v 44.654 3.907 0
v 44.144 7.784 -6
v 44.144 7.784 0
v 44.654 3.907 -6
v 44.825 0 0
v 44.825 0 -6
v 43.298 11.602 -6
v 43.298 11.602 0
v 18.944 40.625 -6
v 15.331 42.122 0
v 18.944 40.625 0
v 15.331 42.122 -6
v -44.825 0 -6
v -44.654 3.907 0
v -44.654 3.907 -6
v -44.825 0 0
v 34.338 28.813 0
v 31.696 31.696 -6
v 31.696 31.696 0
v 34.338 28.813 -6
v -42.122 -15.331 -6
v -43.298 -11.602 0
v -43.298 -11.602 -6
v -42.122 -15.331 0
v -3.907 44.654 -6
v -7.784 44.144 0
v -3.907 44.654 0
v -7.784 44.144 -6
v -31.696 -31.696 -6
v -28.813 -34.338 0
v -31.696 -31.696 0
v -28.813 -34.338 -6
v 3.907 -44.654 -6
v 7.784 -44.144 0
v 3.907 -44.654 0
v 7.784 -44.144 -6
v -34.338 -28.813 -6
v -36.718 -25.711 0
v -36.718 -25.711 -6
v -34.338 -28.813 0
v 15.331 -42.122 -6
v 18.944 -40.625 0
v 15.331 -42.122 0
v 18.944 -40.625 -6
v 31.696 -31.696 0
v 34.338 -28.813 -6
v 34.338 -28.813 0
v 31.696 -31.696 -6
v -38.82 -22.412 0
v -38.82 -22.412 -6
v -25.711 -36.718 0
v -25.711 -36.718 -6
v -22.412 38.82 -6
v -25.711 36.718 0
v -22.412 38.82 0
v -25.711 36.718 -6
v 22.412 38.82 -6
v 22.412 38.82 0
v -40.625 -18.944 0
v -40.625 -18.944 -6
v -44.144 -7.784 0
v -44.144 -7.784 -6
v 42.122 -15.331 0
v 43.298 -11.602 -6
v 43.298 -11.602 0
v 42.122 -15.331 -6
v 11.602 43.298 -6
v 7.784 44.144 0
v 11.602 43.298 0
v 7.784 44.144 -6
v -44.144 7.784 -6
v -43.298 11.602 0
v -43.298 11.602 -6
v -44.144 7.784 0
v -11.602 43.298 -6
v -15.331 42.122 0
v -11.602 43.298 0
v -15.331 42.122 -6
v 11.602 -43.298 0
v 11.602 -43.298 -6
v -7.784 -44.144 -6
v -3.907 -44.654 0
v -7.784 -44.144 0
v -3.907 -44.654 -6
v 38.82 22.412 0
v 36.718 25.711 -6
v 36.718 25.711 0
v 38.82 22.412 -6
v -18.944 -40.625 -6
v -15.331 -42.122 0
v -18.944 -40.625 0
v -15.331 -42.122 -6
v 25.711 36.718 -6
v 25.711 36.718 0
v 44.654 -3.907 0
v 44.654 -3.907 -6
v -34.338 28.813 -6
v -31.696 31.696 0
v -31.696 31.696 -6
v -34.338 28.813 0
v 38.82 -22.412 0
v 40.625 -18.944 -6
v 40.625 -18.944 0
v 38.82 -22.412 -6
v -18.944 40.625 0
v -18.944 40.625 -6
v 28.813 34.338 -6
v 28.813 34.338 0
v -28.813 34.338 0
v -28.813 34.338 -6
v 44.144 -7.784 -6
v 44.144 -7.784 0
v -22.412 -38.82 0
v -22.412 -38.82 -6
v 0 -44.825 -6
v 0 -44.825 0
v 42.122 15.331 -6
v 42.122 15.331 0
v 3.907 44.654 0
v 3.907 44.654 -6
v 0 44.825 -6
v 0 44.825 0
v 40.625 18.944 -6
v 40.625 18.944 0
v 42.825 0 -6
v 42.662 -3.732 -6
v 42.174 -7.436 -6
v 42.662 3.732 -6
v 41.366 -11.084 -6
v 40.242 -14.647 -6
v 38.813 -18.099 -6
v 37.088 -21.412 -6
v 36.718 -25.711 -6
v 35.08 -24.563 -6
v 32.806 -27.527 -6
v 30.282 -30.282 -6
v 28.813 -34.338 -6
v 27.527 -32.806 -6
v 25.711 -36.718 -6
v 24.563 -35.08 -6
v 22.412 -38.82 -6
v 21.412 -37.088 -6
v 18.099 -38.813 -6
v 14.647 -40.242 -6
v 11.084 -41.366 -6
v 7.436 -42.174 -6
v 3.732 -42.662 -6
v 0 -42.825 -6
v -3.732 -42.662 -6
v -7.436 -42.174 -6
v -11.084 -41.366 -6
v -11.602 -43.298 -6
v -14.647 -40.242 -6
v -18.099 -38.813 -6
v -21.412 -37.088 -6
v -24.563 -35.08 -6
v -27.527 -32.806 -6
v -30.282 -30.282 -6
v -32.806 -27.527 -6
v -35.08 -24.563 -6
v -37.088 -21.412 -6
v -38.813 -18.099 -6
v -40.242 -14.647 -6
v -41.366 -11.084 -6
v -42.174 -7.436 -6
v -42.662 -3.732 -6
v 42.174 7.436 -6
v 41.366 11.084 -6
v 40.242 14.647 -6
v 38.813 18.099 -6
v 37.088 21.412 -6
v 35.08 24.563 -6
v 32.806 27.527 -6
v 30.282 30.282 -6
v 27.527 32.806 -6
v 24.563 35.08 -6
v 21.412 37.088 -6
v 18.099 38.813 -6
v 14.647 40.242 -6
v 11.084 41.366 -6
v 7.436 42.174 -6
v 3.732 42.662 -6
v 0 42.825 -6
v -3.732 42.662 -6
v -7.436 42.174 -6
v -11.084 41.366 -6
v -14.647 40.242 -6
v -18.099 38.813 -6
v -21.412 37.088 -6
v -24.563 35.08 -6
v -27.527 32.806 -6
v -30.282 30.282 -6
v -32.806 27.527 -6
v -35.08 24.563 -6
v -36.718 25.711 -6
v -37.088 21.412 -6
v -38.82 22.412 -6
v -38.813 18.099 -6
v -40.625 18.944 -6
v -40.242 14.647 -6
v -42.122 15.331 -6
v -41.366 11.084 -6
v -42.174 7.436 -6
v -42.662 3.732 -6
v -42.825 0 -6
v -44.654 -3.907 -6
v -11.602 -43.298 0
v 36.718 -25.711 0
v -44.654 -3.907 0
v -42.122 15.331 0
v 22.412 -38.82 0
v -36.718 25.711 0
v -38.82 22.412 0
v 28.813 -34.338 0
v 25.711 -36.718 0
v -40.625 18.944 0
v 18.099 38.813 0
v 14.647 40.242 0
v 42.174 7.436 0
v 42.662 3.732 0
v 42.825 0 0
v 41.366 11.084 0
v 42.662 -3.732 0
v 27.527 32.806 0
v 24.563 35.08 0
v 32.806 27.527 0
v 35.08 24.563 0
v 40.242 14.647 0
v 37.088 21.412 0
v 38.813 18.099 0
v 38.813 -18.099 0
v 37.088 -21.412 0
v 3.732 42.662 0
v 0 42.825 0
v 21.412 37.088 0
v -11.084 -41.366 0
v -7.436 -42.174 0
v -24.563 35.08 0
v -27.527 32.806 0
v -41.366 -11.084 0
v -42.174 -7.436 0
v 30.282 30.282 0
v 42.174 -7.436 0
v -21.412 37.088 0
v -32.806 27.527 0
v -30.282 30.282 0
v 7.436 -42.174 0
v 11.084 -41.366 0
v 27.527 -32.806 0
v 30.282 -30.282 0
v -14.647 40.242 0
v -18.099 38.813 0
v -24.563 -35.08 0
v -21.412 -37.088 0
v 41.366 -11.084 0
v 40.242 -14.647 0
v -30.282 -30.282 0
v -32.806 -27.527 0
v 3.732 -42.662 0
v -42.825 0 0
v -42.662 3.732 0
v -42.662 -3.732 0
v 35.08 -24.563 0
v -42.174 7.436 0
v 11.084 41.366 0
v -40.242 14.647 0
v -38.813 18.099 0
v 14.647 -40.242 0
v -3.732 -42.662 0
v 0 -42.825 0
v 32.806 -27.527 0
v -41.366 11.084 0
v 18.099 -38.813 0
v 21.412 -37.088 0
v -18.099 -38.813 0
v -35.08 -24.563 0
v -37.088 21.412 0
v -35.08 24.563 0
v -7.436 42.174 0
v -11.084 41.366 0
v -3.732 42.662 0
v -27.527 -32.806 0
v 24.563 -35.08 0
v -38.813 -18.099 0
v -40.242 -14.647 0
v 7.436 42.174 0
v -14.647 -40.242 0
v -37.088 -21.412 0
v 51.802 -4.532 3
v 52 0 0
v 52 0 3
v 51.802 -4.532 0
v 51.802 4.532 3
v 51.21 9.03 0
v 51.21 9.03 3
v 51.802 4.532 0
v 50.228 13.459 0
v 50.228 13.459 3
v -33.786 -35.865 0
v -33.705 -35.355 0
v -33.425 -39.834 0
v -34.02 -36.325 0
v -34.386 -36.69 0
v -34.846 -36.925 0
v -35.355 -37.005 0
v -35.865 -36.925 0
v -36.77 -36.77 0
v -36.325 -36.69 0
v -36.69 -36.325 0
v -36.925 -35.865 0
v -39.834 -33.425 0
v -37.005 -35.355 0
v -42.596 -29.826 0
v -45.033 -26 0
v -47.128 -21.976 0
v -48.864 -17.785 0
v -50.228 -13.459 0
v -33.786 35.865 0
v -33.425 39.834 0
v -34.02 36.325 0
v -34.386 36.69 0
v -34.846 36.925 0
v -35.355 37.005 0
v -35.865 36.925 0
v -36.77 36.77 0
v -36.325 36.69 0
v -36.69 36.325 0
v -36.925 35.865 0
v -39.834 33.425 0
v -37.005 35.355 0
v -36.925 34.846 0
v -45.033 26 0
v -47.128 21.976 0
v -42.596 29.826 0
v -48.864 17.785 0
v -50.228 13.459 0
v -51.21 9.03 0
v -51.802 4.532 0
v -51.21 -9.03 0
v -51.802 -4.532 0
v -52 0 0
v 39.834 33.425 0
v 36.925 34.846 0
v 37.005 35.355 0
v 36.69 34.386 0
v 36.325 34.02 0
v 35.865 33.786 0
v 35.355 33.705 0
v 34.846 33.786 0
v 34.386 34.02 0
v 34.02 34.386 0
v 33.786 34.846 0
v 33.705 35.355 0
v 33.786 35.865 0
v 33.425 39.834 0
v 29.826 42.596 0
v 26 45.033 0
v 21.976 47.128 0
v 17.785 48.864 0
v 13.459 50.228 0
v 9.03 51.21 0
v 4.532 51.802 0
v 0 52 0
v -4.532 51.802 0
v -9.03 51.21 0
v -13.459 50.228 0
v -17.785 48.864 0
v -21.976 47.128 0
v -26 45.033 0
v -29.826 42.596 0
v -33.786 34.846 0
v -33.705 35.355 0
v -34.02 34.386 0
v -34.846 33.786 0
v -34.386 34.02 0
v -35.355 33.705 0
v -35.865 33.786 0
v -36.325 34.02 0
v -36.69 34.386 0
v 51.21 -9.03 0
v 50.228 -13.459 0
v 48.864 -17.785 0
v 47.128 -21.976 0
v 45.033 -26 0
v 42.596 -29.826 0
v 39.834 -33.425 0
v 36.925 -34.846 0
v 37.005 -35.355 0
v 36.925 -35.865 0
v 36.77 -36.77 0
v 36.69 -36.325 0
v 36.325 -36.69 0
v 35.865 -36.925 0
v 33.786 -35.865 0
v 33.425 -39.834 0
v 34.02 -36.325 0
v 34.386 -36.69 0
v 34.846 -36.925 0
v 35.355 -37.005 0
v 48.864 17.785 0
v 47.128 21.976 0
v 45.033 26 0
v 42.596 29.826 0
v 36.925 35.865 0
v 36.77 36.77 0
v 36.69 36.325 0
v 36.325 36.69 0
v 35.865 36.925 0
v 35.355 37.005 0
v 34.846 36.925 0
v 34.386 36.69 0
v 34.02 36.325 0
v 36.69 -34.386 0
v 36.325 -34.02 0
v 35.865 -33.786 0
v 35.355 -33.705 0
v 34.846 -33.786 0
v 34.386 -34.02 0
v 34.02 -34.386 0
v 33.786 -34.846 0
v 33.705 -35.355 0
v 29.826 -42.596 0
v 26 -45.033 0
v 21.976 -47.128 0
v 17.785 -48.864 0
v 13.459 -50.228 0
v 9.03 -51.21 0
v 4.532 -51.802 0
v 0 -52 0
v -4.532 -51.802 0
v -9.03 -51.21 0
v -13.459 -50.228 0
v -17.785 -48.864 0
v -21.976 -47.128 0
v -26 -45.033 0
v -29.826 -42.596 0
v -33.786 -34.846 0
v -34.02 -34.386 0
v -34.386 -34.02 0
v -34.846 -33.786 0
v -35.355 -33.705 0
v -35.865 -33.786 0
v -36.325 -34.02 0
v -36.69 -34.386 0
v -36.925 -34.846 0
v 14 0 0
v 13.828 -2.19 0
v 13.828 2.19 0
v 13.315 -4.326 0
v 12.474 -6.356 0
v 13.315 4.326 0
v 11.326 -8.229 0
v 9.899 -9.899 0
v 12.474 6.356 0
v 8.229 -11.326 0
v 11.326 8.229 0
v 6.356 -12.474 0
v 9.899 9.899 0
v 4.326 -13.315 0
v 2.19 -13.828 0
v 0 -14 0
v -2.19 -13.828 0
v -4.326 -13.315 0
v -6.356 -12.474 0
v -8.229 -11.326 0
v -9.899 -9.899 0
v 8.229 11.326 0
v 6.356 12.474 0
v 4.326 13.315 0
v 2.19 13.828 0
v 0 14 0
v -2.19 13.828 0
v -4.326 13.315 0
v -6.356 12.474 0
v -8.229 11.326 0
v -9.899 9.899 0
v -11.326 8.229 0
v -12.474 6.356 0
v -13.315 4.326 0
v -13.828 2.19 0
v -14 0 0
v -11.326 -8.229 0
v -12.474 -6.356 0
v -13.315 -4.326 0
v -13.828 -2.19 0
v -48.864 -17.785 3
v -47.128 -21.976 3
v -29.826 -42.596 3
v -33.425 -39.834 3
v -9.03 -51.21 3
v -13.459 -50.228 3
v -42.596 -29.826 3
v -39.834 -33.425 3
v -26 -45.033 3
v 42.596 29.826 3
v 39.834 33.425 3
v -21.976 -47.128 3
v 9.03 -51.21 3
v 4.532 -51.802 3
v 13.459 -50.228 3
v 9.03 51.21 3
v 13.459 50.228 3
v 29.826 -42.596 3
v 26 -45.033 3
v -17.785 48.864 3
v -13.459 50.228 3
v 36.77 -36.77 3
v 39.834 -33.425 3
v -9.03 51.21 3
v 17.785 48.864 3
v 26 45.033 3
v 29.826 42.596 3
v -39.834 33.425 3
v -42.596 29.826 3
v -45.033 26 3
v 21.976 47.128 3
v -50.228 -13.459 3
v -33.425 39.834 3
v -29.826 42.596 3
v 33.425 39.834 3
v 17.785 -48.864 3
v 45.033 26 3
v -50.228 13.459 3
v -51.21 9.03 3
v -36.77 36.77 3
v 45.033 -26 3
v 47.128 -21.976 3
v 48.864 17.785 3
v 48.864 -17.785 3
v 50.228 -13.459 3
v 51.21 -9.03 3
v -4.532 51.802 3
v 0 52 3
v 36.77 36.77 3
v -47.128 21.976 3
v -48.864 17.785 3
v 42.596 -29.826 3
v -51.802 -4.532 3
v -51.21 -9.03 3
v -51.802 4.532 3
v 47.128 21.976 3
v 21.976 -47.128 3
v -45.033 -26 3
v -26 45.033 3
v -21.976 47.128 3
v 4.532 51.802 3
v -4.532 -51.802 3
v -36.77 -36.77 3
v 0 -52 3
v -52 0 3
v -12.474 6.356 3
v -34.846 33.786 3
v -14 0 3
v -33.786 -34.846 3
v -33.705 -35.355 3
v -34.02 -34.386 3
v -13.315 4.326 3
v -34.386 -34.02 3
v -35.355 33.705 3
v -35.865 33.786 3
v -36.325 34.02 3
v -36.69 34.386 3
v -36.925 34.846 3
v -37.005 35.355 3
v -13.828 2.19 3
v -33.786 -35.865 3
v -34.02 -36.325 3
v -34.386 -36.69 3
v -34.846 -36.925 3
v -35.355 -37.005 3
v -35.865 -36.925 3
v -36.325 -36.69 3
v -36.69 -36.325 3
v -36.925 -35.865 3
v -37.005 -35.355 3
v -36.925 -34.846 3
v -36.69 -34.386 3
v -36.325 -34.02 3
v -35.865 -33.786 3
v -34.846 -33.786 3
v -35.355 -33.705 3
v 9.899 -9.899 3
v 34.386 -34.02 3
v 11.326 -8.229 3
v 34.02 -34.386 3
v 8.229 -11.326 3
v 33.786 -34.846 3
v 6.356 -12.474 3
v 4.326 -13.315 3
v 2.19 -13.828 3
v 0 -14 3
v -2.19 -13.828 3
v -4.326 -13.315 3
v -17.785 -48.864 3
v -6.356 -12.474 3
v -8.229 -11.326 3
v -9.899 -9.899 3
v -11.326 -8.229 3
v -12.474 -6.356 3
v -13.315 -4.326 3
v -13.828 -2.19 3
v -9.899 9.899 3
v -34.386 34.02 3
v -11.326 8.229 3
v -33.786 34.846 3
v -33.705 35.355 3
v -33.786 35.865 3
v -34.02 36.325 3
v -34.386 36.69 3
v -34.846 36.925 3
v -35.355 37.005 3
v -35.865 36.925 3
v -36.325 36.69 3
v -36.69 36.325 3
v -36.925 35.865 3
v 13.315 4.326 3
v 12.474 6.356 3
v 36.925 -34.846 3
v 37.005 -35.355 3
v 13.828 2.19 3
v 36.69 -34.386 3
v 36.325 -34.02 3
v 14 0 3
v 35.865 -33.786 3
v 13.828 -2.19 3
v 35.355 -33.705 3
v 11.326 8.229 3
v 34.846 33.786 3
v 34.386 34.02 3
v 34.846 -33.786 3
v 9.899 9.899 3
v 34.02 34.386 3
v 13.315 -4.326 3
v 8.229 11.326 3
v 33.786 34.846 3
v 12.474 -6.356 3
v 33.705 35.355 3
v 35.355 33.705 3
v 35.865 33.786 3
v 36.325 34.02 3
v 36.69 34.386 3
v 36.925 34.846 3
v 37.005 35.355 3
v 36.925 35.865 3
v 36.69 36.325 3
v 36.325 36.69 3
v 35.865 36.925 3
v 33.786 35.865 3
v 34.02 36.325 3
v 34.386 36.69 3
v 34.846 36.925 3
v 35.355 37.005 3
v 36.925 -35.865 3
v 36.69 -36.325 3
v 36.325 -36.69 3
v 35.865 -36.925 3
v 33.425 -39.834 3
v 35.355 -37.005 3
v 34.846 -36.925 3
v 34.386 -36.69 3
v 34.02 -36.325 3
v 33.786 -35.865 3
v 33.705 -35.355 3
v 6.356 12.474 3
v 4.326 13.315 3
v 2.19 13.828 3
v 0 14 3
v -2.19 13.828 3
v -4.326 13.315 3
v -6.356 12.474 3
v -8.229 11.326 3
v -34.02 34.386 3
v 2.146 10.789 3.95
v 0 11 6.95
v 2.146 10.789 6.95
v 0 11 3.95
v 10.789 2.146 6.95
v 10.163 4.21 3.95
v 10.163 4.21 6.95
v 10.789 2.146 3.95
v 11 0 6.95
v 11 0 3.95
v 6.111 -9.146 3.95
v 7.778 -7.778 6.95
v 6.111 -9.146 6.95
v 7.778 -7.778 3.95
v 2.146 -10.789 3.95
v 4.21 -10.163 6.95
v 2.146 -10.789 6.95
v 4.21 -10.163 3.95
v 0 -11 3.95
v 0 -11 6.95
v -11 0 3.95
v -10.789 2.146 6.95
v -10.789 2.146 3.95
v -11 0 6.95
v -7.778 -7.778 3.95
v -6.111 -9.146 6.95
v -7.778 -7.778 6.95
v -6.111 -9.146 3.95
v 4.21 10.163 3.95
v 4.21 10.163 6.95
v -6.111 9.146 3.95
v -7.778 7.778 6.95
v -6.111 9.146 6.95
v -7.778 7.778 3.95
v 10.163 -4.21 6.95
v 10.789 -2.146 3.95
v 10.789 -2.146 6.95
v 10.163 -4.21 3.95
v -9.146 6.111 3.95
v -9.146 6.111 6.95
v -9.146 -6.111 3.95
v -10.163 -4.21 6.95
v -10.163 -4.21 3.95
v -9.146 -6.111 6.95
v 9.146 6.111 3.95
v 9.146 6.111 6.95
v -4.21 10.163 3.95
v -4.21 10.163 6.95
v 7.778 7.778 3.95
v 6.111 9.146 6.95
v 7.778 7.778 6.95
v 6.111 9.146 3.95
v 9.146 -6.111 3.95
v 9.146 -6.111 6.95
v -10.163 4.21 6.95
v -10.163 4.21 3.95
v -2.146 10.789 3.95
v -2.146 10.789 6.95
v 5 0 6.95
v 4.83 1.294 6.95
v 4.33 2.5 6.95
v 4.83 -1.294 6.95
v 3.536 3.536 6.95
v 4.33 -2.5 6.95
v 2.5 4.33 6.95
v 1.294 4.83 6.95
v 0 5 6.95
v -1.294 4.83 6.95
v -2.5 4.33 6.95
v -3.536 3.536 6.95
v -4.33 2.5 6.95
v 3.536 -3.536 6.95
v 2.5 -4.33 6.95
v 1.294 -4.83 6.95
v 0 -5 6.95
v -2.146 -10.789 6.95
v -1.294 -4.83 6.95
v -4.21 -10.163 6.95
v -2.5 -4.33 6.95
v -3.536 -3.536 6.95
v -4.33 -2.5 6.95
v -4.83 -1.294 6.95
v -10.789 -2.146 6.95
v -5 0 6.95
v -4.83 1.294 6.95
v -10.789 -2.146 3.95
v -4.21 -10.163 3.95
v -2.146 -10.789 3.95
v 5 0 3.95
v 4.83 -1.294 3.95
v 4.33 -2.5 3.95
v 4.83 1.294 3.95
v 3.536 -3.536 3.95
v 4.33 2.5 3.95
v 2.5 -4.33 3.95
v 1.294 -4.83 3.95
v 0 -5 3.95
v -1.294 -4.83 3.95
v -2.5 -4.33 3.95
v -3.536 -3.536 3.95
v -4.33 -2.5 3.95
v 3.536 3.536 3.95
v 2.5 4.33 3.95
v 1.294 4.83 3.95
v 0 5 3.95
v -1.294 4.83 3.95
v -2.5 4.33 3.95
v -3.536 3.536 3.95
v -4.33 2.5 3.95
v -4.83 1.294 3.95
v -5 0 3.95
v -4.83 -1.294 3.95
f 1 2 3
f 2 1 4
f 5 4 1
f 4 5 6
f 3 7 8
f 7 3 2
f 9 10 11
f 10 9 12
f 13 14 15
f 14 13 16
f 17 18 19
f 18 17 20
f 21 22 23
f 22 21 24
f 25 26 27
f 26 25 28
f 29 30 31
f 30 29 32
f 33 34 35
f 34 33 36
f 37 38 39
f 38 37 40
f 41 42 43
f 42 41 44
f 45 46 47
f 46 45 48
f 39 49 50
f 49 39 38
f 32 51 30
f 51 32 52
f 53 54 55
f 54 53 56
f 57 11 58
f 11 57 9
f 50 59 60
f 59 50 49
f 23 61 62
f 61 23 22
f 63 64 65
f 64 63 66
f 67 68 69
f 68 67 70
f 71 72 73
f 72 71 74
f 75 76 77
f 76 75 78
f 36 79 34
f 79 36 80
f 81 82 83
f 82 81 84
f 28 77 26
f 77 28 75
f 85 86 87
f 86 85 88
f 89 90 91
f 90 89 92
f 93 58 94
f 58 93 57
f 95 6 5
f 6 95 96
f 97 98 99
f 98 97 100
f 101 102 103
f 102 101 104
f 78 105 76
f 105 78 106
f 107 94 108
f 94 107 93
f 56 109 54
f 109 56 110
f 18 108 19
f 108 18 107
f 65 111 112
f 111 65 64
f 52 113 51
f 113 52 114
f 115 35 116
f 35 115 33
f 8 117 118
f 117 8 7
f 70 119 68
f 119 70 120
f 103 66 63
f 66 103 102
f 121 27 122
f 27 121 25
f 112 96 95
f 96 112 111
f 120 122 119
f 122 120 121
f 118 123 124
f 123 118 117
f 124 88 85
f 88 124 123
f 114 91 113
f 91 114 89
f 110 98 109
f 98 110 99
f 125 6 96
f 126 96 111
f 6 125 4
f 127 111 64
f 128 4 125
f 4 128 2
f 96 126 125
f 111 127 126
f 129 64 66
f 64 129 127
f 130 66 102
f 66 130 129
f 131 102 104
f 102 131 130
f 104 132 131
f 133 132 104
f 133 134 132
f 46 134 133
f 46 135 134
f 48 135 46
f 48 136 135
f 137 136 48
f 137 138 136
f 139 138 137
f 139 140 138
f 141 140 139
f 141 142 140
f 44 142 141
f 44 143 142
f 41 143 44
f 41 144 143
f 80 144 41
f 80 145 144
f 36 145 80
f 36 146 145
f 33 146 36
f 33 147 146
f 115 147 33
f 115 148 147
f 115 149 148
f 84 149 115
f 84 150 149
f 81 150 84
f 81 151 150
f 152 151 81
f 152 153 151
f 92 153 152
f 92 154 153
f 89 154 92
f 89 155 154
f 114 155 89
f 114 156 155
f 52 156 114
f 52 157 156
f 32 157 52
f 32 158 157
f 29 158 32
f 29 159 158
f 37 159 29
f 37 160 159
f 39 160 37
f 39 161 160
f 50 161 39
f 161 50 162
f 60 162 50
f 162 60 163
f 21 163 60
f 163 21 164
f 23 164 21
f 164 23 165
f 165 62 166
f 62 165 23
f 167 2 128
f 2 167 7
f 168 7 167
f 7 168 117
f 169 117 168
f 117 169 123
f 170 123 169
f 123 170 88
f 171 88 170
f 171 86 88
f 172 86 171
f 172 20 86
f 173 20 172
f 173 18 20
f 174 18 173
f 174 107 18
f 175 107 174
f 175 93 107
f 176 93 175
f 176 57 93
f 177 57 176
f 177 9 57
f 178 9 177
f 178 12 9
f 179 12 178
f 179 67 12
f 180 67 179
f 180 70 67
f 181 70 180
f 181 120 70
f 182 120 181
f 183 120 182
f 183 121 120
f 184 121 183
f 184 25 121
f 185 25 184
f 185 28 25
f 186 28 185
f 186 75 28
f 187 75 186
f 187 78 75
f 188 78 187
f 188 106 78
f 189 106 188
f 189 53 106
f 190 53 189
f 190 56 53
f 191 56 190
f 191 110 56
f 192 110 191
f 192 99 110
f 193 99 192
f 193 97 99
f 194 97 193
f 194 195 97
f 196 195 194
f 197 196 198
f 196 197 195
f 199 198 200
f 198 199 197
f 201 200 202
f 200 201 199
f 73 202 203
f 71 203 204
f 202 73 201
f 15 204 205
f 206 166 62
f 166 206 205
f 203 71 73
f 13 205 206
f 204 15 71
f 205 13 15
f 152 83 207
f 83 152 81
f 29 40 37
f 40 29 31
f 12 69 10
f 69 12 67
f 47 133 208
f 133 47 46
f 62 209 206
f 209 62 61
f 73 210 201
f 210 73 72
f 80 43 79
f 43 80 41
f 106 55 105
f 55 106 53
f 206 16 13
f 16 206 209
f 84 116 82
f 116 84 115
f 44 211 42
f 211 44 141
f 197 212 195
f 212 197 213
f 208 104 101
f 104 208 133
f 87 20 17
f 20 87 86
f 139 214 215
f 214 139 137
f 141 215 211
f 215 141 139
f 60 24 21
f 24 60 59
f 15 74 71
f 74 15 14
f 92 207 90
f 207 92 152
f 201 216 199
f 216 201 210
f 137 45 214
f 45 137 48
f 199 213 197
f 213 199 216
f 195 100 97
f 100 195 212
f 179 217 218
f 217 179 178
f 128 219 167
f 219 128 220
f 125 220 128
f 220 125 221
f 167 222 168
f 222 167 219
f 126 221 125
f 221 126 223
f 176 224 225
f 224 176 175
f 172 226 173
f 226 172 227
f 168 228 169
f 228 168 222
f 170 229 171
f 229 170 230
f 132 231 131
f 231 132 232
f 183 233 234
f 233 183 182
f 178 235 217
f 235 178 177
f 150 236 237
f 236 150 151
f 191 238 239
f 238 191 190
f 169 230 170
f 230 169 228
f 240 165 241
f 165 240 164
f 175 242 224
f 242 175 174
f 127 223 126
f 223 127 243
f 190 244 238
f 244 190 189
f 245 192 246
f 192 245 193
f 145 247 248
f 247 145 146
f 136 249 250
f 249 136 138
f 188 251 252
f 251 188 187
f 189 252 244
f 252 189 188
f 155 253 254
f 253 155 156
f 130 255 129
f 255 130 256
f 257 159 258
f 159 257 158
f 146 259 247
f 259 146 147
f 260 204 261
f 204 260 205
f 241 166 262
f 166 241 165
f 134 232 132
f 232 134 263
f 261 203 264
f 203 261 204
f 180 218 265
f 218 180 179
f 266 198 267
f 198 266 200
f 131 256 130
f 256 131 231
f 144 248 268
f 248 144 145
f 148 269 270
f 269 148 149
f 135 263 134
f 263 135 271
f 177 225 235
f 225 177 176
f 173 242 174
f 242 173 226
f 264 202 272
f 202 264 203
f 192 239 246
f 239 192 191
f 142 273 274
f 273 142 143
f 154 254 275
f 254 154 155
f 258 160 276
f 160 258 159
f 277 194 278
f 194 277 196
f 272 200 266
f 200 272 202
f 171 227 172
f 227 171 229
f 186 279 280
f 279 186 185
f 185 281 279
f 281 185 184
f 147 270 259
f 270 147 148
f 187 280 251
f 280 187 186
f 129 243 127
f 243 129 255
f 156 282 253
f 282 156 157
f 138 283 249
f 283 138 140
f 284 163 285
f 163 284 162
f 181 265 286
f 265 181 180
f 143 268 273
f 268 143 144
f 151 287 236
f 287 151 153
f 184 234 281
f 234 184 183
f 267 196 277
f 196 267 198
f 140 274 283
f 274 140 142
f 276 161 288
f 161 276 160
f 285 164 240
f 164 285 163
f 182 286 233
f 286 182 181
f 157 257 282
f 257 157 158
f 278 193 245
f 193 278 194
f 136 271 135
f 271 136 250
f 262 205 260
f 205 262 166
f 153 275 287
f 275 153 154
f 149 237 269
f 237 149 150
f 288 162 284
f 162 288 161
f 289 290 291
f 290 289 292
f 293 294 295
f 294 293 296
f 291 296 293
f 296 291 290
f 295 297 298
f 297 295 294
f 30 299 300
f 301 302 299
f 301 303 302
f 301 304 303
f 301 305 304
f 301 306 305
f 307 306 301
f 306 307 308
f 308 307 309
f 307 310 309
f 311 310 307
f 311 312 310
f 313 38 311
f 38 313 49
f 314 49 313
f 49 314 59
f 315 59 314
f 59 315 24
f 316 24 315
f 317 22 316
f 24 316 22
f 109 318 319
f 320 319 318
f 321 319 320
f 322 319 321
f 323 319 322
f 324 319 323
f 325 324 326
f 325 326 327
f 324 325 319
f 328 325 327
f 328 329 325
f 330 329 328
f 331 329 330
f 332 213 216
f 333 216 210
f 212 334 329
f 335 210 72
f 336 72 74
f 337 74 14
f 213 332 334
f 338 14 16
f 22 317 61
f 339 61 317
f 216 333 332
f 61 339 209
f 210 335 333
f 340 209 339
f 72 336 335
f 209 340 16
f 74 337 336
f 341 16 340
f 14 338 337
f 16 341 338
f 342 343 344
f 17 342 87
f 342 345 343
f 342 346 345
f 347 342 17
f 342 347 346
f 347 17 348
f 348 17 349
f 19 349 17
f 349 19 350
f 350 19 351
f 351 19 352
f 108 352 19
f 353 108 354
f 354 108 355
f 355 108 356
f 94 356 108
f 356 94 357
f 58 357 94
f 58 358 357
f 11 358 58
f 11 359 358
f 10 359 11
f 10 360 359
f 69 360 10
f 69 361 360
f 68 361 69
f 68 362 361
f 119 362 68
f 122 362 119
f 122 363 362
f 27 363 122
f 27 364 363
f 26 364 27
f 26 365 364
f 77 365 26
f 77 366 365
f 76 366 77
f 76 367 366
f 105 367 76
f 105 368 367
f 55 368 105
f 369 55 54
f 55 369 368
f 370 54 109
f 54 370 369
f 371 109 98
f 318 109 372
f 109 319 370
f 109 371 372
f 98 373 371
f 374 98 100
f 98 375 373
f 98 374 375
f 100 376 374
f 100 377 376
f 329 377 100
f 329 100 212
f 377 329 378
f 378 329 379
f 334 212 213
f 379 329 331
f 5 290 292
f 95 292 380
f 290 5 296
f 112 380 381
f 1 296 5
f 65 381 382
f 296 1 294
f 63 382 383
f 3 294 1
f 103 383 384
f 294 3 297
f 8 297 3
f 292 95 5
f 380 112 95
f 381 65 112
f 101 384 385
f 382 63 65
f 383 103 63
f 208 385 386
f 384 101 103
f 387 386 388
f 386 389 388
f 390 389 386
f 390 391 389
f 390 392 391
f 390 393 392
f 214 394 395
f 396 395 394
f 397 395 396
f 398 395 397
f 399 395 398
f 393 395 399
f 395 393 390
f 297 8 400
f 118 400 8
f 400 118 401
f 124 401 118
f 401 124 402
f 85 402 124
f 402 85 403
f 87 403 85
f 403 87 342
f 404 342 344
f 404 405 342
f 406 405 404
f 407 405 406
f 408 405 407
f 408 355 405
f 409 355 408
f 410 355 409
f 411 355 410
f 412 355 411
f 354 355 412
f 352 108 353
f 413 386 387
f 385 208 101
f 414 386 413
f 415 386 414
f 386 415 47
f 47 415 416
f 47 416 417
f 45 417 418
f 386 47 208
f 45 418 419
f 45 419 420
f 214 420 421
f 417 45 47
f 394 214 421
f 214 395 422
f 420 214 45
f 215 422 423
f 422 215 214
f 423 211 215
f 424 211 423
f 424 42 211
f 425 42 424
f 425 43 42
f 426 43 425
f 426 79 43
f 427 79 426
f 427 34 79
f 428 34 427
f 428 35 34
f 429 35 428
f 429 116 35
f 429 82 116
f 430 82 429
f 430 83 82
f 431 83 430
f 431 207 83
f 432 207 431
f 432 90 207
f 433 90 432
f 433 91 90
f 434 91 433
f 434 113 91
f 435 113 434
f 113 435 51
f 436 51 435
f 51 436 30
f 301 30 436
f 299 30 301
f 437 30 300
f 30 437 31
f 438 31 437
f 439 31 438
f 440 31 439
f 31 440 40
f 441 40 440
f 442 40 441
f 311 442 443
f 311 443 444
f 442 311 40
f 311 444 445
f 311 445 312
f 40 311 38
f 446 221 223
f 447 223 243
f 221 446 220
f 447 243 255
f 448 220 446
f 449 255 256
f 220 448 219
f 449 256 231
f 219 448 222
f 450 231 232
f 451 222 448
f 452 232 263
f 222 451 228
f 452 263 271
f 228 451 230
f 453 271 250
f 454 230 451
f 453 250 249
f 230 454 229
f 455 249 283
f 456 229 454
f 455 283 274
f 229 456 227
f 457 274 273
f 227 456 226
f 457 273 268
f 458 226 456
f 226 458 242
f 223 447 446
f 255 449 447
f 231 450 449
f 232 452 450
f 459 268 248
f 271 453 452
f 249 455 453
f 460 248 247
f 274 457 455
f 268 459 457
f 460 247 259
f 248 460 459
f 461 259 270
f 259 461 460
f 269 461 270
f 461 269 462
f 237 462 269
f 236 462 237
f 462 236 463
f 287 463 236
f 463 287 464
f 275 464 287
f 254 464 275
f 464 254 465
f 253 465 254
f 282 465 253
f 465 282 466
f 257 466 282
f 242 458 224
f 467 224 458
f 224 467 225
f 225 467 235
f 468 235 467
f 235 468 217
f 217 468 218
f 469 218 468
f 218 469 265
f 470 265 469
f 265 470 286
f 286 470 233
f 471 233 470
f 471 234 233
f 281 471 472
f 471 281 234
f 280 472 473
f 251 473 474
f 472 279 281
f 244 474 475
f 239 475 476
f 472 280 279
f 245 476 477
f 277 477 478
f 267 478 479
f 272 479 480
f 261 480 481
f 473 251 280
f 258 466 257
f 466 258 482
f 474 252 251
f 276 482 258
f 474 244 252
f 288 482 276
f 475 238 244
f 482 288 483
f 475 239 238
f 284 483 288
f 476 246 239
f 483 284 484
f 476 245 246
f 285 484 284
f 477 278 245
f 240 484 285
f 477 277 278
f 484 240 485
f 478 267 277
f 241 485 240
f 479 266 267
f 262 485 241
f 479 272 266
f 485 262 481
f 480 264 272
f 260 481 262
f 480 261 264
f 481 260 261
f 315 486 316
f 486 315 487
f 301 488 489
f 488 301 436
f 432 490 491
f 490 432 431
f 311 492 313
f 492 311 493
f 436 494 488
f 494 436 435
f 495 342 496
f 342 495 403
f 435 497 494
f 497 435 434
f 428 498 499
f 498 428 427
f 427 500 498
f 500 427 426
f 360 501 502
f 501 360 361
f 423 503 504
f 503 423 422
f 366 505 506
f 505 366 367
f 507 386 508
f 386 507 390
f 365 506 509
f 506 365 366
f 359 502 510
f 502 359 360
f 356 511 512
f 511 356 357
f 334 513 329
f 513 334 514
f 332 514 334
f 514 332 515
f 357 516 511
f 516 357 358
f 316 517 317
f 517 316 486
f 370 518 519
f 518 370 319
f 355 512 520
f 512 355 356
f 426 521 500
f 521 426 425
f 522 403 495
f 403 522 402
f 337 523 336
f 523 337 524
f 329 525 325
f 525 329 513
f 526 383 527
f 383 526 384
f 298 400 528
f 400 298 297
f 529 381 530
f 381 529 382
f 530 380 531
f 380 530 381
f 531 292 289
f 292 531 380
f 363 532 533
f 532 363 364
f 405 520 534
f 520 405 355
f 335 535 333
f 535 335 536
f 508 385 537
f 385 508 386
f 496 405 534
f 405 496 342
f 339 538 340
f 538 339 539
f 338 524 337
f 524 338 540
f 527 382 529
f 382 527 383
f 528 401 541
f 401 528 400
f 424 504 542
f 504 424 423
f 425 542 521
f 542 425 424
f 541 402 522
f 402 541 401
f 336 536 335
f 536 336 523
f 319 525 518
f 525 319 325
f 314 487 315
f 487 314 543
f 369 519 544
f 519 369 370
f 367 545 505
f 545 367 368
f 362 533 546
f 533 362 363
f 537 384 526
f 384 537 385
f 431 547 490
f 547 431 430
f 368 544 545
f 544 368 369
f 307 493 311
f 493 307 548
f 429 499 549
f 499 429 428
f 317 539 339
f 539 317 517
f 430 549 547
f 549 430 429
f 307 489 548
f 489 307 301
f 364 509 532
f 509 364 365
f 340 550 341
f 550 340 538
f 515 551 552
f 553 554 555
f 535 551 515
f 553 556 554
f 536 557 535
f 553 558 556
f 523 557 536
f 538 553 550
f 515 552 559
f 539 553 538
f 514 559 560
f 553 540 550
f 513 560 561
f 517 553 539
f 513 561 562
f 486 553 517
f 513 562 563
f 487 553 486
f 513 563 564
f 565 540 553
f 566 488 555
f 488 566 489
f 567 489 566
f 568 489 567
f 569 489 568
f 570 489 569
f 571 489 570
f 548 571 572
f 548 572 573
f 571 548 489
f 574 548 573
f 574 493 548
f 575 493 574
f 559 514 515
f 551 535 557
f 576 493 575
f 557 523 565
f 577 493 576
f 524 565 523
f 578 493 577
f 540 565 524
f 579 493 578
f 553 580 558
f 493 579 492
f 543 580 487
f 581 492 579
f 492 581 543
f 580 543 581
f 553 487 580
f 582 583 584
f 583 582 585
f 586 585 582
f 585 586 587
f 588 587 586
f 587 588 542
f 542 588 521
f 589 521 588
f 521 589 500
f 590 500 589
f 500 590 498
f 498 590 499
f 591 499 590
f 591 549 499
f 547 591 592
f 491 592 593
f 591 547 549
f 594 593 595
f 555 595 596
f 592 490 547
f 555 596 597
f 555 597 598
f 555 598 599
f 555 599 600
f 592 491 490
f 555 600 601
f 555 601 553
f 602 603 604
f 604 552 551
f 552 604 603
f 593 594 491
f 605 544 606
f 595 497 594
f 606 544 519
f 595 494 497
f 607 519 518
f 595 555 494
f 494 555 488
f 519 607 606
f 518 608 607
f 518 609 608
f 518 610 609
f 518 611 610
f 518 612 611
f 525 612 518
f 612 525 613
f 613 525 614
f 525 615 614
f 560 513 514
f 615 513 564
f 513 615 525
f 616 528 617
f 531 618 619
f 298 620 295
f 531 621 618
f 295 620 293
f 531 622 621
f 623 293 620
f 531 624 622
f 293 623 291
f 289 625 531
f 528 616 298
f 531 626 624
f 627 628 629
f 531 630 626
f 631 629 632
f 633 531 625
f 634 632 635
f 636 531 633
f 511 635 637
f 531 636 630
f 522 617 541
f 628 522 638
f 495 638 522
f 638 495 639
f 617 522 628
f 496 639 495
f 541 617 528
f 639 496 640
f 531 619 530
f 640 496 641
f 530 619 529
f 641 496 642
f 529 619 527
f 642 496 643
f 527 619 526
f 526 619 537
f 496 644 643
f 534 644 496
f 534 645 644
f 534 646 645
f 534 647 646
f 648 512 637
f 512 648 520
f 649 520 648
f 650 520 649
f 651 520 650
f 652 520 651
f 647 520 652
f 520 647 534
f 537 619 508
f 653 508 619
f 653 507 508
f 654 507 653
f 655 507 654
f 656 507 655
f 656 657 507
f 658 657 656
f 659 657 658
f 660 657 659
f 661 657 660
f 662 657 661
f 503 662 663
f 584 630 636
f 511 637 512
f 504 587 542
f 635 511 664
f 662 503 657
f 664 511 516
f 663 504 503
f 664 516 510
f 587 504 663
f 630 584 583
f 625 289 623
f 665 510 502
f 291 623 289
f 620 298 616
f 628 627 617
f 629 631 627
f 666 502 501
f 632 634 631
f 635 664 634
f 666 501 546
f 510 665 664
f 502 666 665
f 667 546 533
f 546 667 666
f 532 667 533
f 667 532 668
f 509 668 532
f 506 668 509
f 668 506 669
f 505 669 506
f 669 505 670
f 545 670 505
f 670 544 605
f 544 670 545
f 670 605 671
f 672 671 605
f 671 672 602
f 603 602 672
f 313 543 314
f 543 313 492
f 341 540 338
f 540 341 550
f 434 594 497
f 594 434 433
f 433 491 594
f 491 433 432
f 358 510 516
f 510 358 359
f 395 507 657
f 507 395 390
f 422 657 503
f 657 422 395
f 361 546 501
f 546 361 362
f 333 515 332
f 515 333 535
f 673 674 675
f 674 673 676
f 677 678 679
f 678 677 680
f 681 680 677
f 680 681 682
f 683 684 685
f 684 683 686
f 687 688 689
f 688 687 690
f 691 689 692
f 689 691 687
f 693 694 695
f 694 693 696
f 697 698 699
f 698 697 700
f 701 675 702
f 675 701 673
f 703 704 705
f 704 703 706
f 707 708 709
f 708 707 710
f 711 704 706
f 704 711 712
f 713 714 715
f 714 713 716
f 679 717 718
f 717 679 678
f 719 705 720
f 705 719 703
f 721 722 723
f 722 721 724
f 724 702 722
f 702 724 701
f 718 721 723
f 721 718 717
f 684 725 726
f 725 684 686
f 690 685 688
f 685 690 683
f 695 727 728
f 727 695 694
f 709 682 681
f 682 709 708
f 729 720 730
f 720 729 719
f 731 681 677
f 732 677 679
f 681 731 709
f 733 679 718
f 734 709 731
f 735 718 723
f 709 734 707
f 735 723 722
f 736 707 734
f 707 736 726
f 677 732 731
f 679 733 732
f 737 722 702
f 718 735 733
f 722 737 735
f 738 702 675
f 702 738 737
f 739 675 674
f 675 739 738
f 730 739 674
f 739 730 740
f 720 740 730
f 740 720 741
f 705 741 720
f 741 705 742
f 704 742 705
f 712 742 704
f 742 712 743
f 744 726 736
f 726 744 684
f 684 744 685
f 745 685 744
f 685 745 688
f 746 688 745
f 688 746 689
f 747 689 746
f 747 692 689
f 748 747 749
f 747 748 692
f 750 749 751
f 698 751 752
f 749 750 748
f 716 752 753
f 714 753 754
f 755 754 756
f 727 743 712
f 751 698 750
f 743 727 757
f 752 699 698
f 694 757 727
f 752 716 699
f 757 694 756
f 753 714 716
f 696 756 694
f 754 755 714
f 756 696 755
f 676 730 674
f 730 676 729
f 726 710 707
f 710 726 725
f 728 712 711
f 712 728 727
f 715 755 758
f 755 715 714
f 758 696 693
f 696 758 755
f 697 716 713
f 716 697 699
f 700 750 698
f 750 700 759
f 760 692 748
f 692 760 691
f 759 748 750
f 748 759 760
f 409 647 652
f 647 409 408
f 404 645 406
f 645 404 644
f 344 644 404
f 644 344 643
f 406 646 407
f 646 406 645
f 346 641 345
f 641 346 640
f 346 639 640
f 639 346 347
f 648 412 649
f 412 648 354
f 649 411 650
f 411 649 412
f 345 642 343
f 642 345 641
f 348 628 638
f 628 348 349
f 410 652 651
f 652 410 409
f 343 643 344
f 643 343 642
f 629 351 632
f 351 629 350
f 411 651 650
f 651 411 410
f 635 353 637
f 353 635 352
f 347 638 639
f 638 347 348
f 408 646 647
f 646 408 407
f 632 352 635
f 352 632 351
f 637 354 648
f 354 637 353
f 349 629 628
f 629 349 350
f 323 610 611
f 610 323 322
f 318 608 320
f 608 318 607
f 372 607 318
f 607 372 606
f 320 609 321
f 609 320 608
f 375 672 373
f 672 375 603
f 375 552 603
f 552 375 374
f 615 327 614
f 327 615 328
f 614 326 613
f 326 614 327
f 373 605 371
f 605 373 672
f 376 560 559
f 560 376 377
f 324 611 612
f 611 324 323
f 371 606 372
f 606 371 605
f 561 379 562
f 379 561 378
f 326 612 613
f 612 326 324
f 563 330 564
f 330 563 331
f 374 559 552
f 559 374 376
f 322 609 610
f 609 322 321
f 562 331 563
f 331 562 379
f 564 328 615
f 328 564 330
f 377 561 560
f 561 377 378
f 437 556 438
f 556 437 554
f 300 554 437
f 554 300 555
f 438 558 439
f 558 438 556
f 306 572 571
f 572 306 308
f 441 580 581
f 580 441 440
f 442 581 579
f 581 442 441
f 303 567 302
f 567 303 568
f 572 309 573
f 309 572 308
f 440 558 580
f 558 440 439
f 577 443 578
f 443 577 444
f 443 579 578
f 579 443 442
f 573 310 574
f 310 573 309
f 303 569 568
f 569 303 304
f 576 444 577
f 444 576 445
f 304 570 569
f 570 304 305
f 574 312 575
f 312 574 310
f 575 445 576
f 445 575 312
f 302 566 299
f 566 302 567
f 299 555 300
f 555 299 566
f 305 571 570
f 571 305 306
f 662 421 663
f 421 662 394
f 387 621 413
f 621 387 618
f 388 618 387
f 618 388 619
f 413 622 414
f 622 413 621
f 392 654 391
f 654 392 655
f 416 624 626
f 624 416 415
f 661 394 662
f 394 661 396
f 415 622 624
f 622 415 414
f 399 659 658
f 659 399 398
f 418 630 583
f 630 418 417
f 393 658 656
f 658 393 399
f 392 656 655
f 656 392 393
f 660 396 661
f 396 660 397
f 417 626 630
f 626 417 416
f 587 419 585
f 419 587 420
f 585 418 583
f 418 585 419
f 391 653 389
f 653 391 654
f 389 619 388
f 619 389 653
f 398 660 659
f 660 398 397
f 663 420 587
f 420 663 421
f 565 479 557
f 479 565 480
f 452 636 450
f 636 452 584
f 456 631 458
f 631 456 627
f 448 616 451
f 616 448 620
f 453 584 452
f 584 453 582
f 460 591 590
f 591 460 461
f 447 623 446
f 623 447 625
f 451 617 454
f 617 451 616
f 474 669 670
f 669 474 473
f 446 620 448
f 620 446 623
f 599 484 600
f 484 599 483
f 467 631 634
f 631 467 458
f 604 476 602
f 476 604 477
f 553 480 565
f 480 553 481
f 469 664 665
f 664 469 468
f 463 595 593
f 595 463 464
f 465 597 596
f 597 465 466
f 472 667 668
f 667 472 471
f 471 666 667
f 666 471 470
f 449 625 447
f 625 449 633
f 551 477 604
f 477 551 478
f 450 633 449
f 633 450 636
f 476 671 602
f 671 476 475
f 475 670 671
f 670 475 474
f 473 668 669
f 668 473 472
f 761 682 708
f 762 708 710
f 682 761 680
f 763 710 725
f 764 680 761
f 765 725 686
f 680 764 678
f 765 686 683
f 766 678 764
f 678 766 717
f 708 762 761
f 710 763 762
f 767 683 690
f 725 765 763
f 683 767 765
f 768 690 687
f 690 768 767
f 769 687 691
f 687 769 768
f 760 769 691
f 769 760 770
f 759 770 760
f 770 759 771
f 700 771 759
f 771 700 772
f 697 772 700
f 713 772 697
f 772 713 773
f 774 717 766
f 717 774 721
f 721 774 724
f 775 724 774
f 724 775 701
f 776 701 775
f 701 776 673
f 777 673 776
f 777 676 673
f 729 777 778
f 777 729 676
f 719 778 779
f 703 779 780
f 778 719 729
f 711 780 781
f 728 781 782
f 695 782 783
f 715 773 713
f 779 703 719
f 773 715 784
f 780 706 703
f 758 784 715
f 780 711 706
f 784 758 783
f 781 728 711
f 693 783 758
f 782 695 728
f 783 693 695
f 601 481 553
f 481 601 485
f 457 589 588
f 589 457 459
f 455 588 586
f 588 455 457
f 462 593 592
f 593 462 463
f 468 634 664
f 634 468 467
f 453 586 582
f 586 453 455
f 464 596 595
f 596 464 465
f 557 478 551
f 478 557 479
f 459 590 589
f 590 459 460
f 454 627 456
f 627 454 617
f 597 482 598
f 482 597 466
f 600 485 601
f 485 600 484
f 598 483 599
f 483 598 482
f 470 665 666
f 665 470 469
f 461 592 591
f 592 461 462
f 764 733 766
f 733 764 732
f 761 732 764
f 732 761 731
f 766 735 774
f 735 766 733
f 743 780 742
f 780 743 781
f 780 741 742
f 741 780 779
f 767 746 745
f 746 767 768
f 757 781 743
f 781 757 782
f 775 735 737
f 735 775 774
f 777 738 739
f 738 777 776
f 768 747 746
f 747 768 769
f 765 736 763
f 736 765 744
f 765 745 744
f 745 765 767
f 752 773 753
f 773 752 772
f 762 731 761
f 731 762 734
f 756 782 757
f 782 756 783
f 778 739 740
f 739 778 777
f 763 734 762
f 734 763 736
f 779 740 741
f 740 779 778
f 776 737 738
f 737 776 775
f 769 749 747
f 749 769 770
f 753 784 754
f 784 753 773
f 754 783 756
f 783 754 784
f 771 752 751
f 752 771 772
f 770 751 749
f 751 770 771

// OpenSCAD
// file: lib/constants.scad
// ============================================================================
// DIY Supplement Dispenser – shared dimensions (Phase 1 v0.2)
// Source of truth: docs/PHASE1_DESIGN_HANDOFF.md (geometry locks)
// Units: millimetres.
//
// v0.2 stack-up fix:
//   Coupler lives in motor-end bore zone; flights shorter so free end
//   can close with a root-diameter bushing. Assemble auger from free end.
// ============================================================================

// ----- Material / print -----
WALL_T           = 2.2;
CLEARANCE_LOOSE  = 0.4;
CLEARANCE_SLIDE  = 0.25;
CLEARANCE_PRESS  = 0.05;

// ----- Hopper -----
HOPPER_TOP_ID      = 90;
HOPPER_BOT_ID      = 22;
HOPPER_ANGLE_DEG   = 65;
HOPPER_CYL_H       = 40;
HOPPER_WALL        = 2.2;
HOPPER_FLANGE_W    = 7;
HOPPER_FLANGE_T    = 3.5;
HOPPER_BOLT_CIRCLE = 100;
HOPPER_M3_D        = 3.3;
// Cone height: (45 - 11) * tan(65°) ≈ 72.9 mm
HOPPER_CONE_H      = (HOPPER_TOP_ID/2 - HOPPER_BOT_ID/2) * tan(HOPPER_ANGLE_DEG);
// Approximate internal volume (ml): frustum + cylinder ≈ 200 + 254 ≈ 455 ml
HOPPER_SPIGOT_H    = 8;
HOPPER_SPIGOT_OD   = HOPPER_BOT_ID + 2*HOPPER_WALL;
HOPPER_BOT_FLANGE_OD = 42;
HOPPER_BOT_FLANGE_T  = 3.5;
HOPPER_BOT_BOLT_CIRCLE = 34;

// ----- Auger screw (stack-up: coupler zone + flights + tip ≤ barrel) -----
AUGER_OD       = 16.8;
AUGER_ROOT_D   = 8.5;
AUGER_PITCH    = 11;
// Active flights shorter so coupler zone + tip fit in 70 mm barrel
AUGER_LENGTH   = 48;    // was 70 — did not fit with coupler
AUGER_FLIGHT_T = 1.6;
AUGER_SHAFT_D  = 5.0;
AUGER_COUPLER_L = 14;
AUGER_COUPLER_OD = 12;
AUGER_SETSCREW_D = 3.0;
AUGER_TIP_L    = 6;
// Coupler shoulder after coupler body
AUGER_SHOULDER_L = 2.5;

// ----- Barrel / housing -----
BARREL_ID      = 18.0;
BARREL_OD      = BARREL_ID + 2*WALL_T;
BARREL_LENGTH  = 70;
// Motor-end coupler pocket (enlarged bore so 12 mm coupler seats inside barrel)
COUPLER_BORE_D = AUGER_COUPLER_OD + 1.0;  // ~13 mm
COUPLER_ZONE_L = AUGER_COUPLER_L + AUGER_SHOULDER_L + 1; // ~17.5 mm
// Free-end bushing (root + clearance) — CLOSES powder path
BUSHING_ID     = AUGER_ROOT_D + 0.9;  // ~9.4 mm — tip only, not full barrel ID
BUSHING_DEPTH  = 6;
INLET_ID       = HOPPER_BOT_ID;
INLET_BORE_H   = 12;
OUTLET_ID      = 16;
OUTLET_L       = 12;
OUTLET_WALL    = 2.0;
// Side access for M3 set-screw on coupler (radial hole in housing)
SETSCREW_ACCESS_D = 4.0;

// ----- NEMA17 -----
NEMA17_FACE        = 42;
NEMA17_HOLE_SPACE  = 31;
NEMA17_HOLE_D      = 3.3;
NEMA17_PILOT_D     = 22.5;
NEMA17_PLATE_T     = 4.0;
// Shaft pass-through only (coupler does NOT pass the plate)
NEMA17_SHAFT_CLEAR = 6.0;

// ----- Vibration motor -----
VIBE_MOTOR_D   = 12;
VIBE_MOTOR_H   = 3.2;
VIBE_WIRE_W    = 3.5;
VIBE_WIRE_H    = 1.5;

// ----- Load cell / scale platform -----
// Common bar cell ~80×12.7; some Amazon kits are 76×13.5 — verify yours
LOADCELL_L     = 80;
LOADCELL_W     = 12.7;
LOADCELL_H     = 12.7;
LOADCELL_HOLE_SPACE = 15;
LOADCELL_HOLE_D     = 4.2;
CUP_RECESS_D   = 70;
CUP_RECESS_H   = 3;

// ----- Test stand -----
STAND_OUTLET_CLEARANCE = 55;
STAND_FOOT_T   = 4;
STAND_POST_W   = 14;

// ----- Lid -----
LID_LIP_H      = 6;
LID_LIP_CLEAR  = 0.35;

PART_VERSION   = "v02";
// main file
// ============================================================================
// hopper_lid_v01.scad – snap/screw lid for powder hopper top flange
// DIY Supplement Dispenser
//
// Mates top flange: bolt circle 100 mm, 4× M3, OD ≈ 90 + 2*7 = 104 mm outer
// Print: flat, PETG. Optional desiccant well on underside (simple pocket).
// ============================================================================

include <lib/constants.scad>

top_id       = HOPPER_TOP_ID;
flange_w     = HOPPER_FLANGE_W;
bolt_circle  = HOPPER_BOLT_CIRCLE;
m3_d         = HOPPER_M3_D;
wall         = 2.0;
deck_t       = 3.0;
lip_h        = LID_LIP_H;
lip_clear    = LID_LIP_CLEAR;
// Outer diameter of top flange ring
flange_od    = top_id + 2*flange_w;
// Lip seats inside hopper top ID with clearance
lip_od       = top_id - lip_clear;
desiccant_d  = 28;
desiccant_h  = 4;

$fn = 72;

module hopper_lid() {
    difference() {
        union() {
            // Flat deck covering flange
            cylinder(d = flange_od, h = deck_t);
            // Downward lip into hopper mouth
            translate([0, 0, -lip_h])
                difference() {
                    cylinder(d = lip_od, h = lip_h + 0.05);
                    translate([0, 0, -0.1])
                        cylinder(d = lip_od - 2*wall, h = lip_h + 0.3);
                }
            // Finger grip boss on top
            translate([0, 0, deck_t - 0.05])
                cylinder(d = 22, h = 4, $fn = 32);
        }
        // M3 through holes matching hopper flange
        r = bolt_circle / 2;
        for (a = [45, 135, 225, 315])
            translate([r*cos(a), r*sin(a), -lip_h - 0.1])
                cylinder(d = m3_d, h = deck_t + lip_h + 5, $fn = 20);
        // Optional desiccant / handle recess underside of deck
        translate([0, 0, -0.05])
            cylinder(d = desiccant_d, h = desiccant_h, $fn = 40);
        // Finger hole through grip (vent + lift)
        translate([0, 0, -0.1])
            cylinder(d = 10, h = deck_t + 5, $fn = 24);
    }
}

hopper_lid();

echo("lid flange OD =", flange_od, " lip OD =", lip_od, " BCD =", bolt_circle);
